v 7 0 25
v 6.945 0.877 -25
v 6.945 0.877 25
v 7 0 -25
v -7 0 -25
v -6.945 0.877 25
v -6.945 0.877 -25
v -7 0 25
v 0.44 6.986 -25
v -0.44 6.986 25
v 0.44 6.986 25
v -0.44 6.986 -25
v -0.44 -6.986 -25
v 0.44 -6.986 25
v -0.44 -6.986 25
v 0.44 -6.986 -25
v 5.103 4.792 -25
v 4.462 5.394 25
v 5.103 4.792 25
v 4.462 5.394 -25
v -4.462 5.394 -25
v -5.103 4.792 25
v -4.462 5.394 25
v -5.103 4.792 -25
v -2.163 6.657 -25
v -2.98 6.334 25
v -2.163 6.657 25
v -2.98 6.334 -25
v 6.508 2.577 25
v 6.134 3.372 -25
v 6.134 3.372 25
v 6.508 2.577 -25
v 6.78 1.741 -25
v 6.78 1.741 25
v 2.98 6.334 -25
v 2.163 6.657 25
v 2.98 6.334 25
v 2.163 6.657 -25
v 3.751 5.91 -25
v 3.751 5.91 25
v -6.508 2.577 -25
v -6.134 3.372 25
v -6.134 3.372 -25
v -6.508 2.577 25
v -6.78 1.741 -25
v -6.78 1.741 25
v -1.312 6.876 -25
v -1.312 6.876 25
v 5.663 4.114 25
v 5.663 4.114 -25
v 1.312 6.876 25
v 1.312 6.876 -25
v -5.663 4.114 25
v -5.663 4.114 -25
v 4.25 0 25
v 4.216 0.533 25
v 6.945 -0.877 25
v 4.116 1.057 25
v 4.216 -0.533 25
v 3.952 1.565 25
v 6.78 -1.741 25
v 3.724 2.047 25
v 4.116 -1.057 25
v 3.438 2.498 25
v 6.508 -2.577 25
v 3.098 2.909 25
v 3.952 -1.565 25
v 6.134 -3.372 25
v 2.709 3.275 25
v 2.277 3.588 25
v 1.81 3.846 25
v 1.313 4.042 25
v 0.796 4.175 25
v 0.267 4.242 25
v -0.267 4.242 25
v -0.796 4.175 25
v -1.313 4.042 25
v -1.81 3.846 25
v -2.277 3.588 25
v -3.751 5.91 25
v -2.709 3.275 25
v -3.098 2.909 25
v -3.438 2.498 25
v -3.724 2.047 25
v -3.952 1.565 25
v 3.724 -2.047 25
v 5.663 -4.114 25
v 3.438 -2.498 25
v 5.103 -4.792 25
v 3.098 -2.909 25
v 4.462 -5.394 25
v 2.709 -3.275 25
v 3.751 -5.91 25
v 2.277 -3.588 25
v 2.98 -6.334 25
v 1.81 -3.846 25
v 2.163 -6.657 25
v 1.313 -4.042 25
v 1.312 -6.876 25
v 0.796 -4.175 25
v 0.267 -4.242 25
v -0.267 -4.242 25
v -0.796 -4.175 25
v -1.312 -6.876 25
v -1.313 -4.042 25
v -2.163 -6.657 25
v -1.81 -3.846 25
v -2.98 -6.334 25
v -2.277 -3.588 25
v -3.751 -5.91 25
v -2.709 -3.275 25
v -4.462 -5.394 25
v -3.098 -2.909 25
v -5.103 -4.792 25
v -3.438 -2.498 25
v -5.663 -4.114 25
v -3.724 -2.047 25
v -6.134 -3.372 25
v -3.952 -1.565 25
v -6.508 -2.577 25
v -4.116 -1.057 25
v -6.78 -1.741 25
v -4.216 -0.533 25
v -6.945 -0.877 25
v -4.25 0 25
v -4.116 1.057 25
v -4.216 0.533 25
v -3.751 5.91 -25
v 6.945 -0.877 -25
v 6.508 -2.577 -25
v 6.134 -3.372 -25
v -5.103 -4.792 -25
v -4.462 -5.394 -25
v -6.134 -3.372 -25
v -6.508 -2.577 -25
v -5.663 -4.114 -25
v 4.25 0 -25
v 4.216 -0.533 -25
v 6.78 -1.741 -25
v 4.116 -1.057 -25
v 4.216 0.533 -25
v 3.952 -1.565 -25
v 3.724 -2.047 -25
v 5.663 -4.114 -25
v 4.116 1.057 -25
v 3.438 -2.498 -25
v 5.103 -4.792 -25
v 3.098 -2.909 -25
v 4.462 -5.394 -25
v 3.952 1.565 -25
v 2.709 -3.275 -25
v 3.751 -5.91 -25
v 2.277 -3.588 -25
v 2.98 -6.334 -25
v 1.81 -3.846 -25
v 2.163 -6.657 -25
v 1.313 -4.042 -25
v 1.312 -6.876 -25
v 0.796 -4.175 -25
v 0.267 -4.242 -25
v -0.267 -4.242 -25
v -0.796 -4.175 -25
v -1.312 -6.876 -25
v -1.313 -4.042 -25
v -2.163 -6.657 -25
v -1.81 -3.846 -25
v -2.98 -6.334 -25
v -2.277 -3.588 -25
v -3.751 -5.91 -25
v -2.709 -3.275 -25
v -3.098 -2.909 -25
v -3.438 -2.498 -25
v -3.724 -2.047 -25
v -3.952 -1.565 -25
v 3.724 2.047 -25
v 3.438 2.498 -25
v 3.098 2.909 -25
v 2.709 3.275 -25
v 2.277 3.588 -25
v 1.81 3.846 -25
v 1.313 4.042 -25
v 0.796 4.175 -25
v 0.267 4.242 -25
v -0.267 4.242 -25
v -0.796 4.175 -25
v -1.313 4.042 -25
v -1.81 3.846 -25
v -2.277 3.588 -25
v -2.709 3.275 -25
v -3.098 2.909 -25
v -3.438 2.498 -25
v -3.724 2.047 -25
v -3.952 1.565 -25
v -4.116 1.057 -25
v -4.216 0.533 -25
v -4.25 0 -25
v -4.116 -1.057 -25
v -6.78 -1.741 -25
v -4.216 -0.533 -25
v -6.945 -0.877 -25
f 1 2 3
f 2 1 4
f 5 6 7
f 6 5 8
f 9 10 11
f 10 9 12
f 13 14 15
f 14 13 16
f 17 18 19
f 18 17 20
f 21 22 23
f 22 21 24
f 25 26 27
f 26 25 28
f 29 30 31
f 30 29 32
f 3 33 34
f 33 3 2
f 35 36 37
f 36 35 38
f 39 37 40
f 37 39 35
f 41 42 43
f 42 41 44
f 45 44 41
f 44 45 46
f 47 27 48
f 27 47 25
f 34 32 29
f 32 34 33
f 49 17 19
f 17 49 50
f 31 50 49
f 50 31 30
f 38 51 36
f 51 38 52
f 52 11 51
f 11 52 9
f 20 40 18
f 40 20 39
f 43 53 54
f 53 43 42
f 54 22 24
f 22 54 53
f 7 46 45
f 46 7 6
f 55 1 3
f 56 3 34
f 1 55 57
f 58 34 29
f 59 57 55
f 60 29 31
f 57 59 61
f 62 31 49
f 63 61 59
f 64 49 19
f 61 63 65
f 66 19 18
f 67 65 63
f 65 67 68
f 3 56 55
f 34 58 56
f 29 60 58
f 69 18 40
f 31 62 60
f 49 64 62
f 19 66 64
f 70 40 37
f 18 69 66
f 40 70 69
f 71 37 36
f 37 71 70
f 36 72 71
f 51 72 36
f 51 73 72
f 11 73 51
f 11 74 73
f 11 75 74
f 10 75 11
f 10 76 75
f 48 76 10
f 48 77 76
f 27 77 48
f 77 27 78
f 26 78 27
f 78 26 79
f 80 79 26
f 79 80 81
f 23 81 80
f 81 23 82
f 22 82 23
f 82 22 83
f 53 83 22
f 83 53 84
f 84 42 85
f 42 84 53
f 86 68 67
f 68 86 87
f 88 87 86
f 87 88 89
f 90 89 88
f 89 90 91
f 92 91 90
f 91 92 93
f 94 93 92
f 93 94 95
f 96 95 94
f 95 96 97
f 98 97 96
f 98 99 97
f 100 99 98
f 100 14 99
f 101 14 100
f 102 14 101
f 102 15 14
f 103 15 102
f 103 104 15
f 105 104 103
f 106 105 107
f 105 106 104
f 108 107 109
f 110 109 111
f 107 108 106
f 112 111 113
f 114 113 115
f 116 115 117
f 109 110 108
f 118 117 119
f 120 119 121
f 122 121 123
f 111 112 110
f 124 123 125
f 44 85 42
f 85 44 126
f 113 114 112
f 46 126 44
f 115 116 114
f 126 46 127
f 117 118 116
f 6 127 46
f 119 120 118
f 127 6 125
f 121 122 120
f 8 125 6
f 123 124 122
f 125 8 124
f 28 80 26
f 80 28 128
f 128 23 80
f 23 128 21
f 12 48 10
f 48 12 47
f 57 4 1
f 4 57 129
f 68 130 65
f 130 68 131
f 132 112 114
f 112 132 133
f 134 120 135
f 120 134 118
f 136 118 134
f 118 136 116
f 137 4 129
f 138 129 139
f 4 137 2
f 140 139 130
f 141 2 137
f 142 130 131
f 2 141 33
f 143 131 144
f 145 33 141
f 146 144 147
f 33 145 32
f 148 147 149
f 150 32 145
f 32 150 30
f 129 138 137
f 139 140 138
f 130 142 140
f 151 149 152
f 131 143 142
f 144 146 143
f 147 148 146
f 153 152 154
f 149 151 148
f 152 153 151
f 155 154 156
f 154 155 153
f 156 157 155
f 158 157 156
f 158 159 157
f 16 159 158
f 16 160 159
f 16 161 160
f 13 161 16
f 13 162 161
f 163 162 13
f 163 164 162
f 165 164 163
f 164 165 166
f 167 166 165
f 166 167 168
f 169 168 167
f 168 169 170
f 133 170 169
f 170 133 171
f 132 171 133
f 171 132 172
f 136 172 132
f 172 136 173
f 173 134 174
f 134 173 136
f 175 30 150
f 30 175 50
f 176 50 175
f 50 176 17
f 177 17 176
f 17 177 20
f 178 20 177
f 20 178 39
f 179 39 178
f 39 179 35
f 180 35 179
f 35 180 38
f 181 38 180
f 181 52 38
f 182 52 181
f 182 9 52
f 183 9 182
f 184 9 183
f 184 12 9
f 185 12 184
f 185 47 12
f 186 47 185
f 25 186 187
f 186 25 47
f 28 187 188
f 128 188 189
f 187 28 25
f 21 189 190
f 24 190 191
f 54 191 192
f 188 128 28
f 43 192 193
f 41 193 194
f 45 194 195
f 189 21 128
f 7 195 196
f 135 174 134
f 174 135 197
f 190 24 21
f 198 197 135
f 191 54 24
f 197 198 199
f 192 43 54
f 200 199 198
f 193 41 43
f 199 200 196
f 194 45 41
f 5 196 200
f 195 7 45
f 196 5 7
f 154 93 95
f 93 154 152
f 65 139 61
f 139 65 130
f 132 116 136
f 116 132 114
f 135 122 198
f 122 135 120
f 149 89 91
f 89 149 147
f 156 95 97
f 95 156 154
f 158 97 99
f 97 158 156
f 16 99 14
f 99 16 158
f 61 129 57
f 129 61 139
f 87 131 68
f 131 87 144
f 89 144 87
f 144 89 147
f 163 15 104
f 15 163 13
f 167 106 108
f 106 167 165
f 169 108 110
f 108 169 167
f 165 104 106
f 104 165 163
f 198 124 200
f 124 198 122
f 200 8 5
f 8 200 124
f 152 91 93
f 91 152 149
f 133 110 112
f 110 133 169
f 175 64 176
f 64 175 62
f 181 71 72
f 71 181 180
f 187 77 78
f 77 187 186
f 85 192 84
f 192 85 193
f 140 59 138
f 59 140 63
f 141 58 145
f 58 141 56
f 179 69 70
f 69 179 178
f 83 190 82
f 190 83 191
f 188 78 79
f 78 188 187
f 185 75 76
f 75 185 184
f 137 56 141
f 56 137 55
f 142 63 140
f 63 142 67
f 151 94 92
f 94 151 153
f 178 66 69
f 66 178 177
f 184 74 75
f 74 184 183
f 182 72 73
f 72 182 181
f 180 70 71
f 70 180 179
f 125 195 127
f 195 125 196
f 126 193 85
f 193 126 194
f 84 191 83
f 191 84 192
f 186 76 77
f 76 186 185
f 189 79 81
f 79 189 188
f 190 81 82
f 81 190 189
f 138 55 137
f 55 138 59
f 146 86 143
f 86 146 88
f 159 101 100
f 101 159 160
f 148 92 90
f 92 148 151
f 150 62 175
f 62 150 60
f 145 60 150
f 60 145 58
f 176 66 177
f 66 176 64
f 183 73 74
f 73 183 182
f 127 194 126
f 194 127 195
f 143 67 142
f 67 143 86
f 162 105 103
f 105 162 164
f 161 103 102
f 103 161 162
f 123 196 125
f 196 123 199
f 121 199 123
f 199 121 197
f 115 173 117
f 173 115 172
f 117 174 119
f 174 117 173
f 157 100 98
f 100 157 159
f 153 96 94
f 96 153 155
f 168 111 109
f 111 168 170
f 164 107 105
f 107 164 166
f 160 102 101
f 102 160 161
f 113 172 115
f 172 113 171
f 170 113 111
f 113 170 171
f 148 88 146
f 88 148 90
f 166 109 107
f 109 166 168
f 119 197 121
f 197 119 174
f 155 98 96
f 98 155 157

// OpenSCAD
$fn = 50;


difference() {
	union() {
		translate(v = [0, 0, -25.0000000000]) {
			cylinder(h = 50, r = 7.0000000000);
		}
	}
	union() {
		translate(v = [0, 0, -100.0000000000]) {
			cylinder(h = 200, r = 4.2500000000);
		}
	}
}
